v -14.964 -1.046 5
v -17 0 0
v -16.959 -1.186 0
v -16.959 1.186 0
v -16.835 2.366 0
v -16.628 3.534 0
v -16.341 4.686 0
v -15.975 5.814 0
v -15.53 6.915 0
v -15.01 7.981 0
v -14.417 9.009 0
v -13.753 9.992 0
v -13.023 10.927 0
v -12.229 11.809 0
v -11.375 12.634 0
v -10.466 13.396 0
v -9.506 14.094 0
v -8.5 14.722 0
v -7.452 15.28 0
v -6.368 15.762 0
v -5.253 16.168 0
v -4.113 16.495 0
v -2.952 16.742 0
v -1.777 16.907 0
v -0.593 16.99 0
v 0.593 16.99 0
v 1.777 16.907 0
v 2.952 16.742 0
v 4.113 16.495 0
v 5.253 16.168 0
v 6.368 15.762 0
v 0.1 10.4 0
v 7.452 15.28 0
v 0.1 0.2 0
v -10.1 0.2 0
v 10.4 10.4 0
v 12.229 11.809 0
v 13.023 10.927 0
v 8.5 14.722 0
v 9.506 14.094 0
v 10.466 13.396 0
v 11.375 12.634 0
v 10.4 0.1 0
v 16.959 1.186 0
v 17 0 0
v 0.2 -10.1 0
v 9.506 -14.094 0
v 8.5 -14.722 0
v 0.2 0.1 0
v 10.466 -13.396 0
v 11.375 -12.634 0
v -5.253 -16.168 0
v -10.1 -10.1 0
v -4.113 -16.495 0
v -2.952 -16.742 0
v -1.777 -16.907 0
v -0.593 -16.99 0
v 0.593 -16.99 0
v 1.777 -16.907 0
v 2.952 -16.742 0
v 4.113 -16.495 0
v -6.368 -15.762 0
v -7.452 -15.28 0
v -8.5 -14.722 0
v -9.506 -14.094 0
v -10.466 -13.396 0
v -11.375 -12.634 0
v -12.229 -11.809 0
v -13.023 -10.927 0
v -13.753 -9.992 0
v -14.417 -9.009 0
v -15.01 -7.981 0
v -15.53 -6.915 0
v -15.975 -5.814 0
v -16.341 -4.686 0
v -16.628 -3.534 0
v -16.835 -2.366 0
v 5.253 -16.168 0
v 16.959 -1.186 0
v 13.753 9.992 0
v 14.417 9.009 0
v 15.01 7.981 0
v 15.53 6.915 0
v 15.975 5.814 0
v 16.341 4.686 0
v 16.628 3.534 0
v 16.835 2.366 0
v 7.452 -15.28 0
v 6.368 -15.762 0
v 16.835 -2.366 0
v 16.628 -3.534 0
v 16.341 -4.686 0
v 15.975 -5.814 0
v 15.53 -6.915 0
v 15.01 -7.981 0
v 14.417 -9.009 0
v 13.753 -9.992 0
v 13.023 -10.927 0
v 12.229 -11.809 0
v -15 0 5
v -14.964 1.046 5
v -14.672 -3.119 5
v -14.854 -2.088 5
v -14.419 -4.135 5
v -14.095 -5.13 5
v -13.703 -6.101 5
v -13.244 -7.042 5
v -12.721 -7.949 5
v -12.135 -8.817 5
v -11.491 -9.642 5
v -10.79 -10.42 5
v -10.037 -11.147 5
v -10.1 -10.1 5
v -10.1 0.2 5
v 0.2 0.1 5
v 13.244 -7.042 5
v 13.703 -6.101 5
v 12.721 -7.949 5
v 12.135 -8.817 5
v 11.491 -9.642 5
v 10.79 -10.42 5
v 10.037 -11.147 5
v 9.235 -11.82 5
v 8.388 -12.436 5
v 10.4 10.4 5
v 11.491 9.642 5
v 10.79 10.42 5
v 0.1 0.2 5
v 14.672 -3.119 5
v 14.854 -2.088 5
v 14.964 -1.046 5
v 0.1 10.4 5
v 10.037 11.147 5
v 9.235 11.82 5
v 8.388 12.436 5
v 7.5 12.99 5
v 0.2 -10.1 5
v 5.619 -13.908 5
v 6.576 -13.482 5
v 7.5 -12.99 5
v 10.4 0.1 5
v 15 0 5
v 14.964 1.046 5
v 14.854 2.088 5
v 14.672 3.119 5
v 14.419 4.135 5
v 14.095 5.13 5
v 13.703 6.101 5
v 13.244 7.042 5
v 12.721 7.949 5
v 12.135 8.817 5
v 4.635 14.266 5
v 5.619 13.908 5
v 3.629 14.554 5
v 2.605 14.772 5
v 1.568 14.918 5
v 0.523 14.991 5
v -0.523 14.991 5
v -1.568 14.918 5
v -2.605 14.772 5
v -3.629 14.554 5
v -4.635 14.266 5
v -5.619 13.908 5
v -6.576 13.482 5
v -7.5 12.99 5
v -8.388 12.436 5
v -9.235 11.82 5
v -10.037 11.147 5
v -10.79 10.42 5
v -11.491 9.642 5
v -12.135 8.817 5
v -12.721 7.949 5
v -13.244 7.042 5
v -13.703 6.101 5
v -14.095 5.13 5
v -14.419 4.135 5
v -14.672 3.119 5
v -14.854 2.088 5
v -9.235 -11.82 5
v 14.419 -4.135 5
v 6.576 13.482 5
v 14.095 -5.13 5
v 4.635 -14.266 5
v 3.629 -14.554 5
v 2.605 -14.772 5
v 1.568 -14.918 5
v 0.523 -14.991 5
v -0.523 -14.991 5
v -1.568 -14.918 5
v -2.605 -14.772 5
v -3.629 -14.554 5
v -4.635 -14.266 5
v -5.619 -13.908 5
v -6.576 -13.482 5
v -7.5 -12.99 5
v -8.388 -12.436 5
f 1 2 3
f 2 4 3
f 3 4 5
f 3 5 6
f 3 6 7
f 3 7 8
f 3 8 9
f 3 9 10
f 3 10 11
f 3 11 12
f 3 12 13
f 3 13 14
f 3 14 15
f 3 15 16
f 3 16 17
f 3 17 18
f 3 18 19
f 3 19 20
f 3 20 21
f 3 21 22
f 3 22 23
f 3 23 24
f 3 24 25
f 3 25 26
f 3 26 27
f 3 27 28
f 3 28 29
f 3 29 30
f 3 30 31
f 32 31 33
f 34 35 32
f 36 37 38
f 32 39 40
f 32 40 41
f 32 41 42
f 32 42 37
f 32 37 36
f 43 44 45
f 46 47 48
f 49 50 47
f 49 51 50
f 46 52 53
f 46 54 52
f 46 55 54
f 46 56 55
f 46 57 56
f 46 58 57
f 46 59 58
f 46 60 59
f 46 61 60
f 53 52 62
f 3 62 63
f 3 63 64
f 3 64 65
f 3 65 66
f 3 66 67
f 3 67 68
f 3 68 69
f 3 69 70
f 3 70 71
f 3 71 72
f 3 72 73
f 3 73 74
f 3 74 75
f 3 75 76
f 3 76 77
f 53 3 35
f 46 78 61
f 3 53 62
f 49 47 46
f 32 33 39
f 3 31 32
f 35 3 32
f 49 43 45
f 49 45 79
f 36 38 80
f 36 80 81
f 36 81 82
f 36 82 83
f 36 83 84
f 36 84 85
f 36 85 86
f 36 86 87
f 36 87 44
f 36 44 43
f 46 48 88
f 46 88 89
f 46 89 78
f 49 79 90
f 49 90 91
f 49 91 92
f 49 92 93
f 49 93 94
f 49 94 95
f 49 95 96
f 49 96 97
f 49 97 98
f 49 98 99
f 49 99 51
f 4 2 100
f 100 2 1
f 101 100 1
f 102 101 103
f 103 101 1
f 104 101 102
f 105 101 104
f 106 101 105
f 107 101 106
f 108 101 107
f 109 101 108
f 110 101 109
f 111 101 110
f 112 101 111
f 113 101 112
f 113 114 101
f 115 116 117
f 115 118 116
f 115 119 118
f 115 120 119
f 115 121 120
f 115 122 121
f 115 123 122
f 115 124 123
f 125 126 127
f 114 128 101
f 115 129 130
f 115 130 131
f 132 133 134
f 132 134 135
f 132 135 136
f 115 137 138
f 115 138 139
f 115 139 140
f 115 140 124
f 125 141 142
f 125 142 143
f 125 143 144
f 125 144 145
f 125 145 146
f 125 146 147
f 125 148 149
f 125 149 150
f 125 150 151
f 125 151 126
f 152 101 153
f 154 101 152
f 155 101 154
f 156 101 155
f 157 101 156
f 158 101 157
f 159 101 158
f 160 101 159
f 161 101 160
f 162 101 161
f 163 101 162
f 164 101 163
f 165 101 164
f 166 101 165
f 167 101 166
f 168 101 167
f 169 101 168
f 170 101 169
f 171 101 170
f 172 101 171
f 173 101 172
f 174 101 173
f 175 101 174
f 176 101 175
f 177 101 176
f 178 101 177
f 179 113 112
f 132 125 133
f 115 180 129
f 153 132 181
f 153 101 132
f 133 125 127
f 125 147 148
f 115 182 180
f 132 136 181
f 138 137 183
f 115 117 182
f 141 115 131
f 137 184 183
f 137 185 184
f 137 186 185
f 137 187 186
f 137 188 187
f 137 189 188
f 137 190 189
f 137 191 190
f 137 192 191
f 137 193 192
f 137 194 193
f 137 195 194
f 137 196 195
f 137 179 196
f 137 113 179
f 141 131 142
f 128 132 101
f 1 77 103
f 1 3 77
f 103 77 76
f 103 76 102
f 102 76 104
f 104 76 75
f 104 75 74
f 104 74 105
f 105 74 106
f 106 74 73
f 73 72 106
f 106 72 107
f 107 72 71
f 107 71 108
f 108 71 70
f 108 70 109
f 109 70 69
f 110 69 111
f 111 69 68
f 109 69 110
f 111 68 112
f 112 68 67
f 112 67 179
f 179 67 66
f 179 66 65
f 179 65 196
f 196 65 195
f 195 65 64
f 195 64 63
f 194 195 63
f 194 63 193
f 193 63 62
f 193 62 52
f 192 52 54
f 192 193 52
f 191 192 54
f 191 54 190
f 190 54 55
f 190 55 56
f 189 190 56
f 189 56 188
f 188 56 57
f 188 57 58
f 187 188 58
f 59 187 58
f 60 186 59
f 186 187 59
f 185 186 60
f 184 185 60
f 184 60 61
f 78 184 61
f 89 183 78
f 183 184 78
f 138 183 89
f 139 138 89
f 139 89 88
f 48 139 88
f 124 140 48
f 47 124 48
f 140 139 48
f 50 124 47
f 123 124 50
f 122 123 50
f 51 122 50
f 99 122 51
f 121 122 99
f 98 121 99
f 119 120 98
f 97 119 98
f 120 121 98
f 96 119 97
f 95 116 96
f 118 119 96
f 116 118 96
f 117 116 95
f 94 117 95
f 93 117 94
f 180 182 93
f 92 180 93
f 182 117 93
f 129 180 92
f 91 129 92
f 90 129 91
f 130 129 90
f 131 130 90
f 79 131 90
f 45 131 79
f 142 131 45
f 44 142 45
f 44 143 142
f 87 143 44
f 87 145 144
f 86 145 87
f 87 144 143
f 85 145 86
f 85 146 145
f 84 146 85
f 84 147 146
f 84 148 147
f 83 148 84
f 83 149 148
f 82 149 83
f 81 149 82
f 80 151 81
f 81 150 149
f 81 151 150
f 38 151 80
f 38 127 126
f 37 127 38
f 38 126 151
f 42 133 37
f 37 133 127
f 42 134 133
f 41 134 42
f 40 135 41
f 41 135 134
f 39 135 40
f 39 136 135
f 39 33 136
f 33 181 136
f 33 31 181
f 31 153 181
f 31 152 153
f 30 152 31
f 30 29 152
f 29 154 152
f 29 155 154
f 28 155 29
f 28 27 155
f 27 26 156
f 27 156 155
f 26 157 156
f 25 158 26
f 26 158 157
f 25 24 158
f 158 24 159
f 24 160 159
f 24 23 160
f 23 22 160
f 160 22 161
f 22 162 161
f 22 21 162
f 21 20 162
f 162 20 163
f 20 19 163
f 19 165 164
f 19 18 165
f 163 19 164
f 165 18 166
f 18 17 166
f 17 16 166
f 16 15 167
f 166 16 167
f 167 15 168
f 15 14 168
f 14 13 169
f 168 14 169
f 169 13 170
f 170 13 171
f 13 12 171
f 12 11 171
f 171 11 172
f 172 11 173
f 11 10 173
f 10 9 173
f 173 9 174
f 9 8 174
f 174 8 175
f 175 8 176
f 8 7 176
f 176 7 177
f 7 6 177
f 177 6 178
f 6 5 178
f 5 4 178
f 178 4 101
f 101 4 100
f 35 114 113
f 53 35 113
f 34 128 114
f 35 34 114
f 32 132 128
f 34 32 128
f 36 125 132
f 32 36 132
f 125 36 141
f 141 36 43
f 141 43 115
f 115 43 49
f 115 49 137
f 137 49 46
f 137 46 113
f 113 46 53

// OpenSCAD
$fs=0.8; // def 1, 0.2 is high res
$fa=4;//def 12, 3 is very nice
%translate([0,0,-0.5])cube([200,200,1],center=true); //build platform

difference(){
cylinder(5,17,15);

translate([.1,0.1,-1]) cube([10.3,10.3,10.3]);
translate([-10.1,-10.1,-1]) cube([10.3,10.3,10.3]);
}
